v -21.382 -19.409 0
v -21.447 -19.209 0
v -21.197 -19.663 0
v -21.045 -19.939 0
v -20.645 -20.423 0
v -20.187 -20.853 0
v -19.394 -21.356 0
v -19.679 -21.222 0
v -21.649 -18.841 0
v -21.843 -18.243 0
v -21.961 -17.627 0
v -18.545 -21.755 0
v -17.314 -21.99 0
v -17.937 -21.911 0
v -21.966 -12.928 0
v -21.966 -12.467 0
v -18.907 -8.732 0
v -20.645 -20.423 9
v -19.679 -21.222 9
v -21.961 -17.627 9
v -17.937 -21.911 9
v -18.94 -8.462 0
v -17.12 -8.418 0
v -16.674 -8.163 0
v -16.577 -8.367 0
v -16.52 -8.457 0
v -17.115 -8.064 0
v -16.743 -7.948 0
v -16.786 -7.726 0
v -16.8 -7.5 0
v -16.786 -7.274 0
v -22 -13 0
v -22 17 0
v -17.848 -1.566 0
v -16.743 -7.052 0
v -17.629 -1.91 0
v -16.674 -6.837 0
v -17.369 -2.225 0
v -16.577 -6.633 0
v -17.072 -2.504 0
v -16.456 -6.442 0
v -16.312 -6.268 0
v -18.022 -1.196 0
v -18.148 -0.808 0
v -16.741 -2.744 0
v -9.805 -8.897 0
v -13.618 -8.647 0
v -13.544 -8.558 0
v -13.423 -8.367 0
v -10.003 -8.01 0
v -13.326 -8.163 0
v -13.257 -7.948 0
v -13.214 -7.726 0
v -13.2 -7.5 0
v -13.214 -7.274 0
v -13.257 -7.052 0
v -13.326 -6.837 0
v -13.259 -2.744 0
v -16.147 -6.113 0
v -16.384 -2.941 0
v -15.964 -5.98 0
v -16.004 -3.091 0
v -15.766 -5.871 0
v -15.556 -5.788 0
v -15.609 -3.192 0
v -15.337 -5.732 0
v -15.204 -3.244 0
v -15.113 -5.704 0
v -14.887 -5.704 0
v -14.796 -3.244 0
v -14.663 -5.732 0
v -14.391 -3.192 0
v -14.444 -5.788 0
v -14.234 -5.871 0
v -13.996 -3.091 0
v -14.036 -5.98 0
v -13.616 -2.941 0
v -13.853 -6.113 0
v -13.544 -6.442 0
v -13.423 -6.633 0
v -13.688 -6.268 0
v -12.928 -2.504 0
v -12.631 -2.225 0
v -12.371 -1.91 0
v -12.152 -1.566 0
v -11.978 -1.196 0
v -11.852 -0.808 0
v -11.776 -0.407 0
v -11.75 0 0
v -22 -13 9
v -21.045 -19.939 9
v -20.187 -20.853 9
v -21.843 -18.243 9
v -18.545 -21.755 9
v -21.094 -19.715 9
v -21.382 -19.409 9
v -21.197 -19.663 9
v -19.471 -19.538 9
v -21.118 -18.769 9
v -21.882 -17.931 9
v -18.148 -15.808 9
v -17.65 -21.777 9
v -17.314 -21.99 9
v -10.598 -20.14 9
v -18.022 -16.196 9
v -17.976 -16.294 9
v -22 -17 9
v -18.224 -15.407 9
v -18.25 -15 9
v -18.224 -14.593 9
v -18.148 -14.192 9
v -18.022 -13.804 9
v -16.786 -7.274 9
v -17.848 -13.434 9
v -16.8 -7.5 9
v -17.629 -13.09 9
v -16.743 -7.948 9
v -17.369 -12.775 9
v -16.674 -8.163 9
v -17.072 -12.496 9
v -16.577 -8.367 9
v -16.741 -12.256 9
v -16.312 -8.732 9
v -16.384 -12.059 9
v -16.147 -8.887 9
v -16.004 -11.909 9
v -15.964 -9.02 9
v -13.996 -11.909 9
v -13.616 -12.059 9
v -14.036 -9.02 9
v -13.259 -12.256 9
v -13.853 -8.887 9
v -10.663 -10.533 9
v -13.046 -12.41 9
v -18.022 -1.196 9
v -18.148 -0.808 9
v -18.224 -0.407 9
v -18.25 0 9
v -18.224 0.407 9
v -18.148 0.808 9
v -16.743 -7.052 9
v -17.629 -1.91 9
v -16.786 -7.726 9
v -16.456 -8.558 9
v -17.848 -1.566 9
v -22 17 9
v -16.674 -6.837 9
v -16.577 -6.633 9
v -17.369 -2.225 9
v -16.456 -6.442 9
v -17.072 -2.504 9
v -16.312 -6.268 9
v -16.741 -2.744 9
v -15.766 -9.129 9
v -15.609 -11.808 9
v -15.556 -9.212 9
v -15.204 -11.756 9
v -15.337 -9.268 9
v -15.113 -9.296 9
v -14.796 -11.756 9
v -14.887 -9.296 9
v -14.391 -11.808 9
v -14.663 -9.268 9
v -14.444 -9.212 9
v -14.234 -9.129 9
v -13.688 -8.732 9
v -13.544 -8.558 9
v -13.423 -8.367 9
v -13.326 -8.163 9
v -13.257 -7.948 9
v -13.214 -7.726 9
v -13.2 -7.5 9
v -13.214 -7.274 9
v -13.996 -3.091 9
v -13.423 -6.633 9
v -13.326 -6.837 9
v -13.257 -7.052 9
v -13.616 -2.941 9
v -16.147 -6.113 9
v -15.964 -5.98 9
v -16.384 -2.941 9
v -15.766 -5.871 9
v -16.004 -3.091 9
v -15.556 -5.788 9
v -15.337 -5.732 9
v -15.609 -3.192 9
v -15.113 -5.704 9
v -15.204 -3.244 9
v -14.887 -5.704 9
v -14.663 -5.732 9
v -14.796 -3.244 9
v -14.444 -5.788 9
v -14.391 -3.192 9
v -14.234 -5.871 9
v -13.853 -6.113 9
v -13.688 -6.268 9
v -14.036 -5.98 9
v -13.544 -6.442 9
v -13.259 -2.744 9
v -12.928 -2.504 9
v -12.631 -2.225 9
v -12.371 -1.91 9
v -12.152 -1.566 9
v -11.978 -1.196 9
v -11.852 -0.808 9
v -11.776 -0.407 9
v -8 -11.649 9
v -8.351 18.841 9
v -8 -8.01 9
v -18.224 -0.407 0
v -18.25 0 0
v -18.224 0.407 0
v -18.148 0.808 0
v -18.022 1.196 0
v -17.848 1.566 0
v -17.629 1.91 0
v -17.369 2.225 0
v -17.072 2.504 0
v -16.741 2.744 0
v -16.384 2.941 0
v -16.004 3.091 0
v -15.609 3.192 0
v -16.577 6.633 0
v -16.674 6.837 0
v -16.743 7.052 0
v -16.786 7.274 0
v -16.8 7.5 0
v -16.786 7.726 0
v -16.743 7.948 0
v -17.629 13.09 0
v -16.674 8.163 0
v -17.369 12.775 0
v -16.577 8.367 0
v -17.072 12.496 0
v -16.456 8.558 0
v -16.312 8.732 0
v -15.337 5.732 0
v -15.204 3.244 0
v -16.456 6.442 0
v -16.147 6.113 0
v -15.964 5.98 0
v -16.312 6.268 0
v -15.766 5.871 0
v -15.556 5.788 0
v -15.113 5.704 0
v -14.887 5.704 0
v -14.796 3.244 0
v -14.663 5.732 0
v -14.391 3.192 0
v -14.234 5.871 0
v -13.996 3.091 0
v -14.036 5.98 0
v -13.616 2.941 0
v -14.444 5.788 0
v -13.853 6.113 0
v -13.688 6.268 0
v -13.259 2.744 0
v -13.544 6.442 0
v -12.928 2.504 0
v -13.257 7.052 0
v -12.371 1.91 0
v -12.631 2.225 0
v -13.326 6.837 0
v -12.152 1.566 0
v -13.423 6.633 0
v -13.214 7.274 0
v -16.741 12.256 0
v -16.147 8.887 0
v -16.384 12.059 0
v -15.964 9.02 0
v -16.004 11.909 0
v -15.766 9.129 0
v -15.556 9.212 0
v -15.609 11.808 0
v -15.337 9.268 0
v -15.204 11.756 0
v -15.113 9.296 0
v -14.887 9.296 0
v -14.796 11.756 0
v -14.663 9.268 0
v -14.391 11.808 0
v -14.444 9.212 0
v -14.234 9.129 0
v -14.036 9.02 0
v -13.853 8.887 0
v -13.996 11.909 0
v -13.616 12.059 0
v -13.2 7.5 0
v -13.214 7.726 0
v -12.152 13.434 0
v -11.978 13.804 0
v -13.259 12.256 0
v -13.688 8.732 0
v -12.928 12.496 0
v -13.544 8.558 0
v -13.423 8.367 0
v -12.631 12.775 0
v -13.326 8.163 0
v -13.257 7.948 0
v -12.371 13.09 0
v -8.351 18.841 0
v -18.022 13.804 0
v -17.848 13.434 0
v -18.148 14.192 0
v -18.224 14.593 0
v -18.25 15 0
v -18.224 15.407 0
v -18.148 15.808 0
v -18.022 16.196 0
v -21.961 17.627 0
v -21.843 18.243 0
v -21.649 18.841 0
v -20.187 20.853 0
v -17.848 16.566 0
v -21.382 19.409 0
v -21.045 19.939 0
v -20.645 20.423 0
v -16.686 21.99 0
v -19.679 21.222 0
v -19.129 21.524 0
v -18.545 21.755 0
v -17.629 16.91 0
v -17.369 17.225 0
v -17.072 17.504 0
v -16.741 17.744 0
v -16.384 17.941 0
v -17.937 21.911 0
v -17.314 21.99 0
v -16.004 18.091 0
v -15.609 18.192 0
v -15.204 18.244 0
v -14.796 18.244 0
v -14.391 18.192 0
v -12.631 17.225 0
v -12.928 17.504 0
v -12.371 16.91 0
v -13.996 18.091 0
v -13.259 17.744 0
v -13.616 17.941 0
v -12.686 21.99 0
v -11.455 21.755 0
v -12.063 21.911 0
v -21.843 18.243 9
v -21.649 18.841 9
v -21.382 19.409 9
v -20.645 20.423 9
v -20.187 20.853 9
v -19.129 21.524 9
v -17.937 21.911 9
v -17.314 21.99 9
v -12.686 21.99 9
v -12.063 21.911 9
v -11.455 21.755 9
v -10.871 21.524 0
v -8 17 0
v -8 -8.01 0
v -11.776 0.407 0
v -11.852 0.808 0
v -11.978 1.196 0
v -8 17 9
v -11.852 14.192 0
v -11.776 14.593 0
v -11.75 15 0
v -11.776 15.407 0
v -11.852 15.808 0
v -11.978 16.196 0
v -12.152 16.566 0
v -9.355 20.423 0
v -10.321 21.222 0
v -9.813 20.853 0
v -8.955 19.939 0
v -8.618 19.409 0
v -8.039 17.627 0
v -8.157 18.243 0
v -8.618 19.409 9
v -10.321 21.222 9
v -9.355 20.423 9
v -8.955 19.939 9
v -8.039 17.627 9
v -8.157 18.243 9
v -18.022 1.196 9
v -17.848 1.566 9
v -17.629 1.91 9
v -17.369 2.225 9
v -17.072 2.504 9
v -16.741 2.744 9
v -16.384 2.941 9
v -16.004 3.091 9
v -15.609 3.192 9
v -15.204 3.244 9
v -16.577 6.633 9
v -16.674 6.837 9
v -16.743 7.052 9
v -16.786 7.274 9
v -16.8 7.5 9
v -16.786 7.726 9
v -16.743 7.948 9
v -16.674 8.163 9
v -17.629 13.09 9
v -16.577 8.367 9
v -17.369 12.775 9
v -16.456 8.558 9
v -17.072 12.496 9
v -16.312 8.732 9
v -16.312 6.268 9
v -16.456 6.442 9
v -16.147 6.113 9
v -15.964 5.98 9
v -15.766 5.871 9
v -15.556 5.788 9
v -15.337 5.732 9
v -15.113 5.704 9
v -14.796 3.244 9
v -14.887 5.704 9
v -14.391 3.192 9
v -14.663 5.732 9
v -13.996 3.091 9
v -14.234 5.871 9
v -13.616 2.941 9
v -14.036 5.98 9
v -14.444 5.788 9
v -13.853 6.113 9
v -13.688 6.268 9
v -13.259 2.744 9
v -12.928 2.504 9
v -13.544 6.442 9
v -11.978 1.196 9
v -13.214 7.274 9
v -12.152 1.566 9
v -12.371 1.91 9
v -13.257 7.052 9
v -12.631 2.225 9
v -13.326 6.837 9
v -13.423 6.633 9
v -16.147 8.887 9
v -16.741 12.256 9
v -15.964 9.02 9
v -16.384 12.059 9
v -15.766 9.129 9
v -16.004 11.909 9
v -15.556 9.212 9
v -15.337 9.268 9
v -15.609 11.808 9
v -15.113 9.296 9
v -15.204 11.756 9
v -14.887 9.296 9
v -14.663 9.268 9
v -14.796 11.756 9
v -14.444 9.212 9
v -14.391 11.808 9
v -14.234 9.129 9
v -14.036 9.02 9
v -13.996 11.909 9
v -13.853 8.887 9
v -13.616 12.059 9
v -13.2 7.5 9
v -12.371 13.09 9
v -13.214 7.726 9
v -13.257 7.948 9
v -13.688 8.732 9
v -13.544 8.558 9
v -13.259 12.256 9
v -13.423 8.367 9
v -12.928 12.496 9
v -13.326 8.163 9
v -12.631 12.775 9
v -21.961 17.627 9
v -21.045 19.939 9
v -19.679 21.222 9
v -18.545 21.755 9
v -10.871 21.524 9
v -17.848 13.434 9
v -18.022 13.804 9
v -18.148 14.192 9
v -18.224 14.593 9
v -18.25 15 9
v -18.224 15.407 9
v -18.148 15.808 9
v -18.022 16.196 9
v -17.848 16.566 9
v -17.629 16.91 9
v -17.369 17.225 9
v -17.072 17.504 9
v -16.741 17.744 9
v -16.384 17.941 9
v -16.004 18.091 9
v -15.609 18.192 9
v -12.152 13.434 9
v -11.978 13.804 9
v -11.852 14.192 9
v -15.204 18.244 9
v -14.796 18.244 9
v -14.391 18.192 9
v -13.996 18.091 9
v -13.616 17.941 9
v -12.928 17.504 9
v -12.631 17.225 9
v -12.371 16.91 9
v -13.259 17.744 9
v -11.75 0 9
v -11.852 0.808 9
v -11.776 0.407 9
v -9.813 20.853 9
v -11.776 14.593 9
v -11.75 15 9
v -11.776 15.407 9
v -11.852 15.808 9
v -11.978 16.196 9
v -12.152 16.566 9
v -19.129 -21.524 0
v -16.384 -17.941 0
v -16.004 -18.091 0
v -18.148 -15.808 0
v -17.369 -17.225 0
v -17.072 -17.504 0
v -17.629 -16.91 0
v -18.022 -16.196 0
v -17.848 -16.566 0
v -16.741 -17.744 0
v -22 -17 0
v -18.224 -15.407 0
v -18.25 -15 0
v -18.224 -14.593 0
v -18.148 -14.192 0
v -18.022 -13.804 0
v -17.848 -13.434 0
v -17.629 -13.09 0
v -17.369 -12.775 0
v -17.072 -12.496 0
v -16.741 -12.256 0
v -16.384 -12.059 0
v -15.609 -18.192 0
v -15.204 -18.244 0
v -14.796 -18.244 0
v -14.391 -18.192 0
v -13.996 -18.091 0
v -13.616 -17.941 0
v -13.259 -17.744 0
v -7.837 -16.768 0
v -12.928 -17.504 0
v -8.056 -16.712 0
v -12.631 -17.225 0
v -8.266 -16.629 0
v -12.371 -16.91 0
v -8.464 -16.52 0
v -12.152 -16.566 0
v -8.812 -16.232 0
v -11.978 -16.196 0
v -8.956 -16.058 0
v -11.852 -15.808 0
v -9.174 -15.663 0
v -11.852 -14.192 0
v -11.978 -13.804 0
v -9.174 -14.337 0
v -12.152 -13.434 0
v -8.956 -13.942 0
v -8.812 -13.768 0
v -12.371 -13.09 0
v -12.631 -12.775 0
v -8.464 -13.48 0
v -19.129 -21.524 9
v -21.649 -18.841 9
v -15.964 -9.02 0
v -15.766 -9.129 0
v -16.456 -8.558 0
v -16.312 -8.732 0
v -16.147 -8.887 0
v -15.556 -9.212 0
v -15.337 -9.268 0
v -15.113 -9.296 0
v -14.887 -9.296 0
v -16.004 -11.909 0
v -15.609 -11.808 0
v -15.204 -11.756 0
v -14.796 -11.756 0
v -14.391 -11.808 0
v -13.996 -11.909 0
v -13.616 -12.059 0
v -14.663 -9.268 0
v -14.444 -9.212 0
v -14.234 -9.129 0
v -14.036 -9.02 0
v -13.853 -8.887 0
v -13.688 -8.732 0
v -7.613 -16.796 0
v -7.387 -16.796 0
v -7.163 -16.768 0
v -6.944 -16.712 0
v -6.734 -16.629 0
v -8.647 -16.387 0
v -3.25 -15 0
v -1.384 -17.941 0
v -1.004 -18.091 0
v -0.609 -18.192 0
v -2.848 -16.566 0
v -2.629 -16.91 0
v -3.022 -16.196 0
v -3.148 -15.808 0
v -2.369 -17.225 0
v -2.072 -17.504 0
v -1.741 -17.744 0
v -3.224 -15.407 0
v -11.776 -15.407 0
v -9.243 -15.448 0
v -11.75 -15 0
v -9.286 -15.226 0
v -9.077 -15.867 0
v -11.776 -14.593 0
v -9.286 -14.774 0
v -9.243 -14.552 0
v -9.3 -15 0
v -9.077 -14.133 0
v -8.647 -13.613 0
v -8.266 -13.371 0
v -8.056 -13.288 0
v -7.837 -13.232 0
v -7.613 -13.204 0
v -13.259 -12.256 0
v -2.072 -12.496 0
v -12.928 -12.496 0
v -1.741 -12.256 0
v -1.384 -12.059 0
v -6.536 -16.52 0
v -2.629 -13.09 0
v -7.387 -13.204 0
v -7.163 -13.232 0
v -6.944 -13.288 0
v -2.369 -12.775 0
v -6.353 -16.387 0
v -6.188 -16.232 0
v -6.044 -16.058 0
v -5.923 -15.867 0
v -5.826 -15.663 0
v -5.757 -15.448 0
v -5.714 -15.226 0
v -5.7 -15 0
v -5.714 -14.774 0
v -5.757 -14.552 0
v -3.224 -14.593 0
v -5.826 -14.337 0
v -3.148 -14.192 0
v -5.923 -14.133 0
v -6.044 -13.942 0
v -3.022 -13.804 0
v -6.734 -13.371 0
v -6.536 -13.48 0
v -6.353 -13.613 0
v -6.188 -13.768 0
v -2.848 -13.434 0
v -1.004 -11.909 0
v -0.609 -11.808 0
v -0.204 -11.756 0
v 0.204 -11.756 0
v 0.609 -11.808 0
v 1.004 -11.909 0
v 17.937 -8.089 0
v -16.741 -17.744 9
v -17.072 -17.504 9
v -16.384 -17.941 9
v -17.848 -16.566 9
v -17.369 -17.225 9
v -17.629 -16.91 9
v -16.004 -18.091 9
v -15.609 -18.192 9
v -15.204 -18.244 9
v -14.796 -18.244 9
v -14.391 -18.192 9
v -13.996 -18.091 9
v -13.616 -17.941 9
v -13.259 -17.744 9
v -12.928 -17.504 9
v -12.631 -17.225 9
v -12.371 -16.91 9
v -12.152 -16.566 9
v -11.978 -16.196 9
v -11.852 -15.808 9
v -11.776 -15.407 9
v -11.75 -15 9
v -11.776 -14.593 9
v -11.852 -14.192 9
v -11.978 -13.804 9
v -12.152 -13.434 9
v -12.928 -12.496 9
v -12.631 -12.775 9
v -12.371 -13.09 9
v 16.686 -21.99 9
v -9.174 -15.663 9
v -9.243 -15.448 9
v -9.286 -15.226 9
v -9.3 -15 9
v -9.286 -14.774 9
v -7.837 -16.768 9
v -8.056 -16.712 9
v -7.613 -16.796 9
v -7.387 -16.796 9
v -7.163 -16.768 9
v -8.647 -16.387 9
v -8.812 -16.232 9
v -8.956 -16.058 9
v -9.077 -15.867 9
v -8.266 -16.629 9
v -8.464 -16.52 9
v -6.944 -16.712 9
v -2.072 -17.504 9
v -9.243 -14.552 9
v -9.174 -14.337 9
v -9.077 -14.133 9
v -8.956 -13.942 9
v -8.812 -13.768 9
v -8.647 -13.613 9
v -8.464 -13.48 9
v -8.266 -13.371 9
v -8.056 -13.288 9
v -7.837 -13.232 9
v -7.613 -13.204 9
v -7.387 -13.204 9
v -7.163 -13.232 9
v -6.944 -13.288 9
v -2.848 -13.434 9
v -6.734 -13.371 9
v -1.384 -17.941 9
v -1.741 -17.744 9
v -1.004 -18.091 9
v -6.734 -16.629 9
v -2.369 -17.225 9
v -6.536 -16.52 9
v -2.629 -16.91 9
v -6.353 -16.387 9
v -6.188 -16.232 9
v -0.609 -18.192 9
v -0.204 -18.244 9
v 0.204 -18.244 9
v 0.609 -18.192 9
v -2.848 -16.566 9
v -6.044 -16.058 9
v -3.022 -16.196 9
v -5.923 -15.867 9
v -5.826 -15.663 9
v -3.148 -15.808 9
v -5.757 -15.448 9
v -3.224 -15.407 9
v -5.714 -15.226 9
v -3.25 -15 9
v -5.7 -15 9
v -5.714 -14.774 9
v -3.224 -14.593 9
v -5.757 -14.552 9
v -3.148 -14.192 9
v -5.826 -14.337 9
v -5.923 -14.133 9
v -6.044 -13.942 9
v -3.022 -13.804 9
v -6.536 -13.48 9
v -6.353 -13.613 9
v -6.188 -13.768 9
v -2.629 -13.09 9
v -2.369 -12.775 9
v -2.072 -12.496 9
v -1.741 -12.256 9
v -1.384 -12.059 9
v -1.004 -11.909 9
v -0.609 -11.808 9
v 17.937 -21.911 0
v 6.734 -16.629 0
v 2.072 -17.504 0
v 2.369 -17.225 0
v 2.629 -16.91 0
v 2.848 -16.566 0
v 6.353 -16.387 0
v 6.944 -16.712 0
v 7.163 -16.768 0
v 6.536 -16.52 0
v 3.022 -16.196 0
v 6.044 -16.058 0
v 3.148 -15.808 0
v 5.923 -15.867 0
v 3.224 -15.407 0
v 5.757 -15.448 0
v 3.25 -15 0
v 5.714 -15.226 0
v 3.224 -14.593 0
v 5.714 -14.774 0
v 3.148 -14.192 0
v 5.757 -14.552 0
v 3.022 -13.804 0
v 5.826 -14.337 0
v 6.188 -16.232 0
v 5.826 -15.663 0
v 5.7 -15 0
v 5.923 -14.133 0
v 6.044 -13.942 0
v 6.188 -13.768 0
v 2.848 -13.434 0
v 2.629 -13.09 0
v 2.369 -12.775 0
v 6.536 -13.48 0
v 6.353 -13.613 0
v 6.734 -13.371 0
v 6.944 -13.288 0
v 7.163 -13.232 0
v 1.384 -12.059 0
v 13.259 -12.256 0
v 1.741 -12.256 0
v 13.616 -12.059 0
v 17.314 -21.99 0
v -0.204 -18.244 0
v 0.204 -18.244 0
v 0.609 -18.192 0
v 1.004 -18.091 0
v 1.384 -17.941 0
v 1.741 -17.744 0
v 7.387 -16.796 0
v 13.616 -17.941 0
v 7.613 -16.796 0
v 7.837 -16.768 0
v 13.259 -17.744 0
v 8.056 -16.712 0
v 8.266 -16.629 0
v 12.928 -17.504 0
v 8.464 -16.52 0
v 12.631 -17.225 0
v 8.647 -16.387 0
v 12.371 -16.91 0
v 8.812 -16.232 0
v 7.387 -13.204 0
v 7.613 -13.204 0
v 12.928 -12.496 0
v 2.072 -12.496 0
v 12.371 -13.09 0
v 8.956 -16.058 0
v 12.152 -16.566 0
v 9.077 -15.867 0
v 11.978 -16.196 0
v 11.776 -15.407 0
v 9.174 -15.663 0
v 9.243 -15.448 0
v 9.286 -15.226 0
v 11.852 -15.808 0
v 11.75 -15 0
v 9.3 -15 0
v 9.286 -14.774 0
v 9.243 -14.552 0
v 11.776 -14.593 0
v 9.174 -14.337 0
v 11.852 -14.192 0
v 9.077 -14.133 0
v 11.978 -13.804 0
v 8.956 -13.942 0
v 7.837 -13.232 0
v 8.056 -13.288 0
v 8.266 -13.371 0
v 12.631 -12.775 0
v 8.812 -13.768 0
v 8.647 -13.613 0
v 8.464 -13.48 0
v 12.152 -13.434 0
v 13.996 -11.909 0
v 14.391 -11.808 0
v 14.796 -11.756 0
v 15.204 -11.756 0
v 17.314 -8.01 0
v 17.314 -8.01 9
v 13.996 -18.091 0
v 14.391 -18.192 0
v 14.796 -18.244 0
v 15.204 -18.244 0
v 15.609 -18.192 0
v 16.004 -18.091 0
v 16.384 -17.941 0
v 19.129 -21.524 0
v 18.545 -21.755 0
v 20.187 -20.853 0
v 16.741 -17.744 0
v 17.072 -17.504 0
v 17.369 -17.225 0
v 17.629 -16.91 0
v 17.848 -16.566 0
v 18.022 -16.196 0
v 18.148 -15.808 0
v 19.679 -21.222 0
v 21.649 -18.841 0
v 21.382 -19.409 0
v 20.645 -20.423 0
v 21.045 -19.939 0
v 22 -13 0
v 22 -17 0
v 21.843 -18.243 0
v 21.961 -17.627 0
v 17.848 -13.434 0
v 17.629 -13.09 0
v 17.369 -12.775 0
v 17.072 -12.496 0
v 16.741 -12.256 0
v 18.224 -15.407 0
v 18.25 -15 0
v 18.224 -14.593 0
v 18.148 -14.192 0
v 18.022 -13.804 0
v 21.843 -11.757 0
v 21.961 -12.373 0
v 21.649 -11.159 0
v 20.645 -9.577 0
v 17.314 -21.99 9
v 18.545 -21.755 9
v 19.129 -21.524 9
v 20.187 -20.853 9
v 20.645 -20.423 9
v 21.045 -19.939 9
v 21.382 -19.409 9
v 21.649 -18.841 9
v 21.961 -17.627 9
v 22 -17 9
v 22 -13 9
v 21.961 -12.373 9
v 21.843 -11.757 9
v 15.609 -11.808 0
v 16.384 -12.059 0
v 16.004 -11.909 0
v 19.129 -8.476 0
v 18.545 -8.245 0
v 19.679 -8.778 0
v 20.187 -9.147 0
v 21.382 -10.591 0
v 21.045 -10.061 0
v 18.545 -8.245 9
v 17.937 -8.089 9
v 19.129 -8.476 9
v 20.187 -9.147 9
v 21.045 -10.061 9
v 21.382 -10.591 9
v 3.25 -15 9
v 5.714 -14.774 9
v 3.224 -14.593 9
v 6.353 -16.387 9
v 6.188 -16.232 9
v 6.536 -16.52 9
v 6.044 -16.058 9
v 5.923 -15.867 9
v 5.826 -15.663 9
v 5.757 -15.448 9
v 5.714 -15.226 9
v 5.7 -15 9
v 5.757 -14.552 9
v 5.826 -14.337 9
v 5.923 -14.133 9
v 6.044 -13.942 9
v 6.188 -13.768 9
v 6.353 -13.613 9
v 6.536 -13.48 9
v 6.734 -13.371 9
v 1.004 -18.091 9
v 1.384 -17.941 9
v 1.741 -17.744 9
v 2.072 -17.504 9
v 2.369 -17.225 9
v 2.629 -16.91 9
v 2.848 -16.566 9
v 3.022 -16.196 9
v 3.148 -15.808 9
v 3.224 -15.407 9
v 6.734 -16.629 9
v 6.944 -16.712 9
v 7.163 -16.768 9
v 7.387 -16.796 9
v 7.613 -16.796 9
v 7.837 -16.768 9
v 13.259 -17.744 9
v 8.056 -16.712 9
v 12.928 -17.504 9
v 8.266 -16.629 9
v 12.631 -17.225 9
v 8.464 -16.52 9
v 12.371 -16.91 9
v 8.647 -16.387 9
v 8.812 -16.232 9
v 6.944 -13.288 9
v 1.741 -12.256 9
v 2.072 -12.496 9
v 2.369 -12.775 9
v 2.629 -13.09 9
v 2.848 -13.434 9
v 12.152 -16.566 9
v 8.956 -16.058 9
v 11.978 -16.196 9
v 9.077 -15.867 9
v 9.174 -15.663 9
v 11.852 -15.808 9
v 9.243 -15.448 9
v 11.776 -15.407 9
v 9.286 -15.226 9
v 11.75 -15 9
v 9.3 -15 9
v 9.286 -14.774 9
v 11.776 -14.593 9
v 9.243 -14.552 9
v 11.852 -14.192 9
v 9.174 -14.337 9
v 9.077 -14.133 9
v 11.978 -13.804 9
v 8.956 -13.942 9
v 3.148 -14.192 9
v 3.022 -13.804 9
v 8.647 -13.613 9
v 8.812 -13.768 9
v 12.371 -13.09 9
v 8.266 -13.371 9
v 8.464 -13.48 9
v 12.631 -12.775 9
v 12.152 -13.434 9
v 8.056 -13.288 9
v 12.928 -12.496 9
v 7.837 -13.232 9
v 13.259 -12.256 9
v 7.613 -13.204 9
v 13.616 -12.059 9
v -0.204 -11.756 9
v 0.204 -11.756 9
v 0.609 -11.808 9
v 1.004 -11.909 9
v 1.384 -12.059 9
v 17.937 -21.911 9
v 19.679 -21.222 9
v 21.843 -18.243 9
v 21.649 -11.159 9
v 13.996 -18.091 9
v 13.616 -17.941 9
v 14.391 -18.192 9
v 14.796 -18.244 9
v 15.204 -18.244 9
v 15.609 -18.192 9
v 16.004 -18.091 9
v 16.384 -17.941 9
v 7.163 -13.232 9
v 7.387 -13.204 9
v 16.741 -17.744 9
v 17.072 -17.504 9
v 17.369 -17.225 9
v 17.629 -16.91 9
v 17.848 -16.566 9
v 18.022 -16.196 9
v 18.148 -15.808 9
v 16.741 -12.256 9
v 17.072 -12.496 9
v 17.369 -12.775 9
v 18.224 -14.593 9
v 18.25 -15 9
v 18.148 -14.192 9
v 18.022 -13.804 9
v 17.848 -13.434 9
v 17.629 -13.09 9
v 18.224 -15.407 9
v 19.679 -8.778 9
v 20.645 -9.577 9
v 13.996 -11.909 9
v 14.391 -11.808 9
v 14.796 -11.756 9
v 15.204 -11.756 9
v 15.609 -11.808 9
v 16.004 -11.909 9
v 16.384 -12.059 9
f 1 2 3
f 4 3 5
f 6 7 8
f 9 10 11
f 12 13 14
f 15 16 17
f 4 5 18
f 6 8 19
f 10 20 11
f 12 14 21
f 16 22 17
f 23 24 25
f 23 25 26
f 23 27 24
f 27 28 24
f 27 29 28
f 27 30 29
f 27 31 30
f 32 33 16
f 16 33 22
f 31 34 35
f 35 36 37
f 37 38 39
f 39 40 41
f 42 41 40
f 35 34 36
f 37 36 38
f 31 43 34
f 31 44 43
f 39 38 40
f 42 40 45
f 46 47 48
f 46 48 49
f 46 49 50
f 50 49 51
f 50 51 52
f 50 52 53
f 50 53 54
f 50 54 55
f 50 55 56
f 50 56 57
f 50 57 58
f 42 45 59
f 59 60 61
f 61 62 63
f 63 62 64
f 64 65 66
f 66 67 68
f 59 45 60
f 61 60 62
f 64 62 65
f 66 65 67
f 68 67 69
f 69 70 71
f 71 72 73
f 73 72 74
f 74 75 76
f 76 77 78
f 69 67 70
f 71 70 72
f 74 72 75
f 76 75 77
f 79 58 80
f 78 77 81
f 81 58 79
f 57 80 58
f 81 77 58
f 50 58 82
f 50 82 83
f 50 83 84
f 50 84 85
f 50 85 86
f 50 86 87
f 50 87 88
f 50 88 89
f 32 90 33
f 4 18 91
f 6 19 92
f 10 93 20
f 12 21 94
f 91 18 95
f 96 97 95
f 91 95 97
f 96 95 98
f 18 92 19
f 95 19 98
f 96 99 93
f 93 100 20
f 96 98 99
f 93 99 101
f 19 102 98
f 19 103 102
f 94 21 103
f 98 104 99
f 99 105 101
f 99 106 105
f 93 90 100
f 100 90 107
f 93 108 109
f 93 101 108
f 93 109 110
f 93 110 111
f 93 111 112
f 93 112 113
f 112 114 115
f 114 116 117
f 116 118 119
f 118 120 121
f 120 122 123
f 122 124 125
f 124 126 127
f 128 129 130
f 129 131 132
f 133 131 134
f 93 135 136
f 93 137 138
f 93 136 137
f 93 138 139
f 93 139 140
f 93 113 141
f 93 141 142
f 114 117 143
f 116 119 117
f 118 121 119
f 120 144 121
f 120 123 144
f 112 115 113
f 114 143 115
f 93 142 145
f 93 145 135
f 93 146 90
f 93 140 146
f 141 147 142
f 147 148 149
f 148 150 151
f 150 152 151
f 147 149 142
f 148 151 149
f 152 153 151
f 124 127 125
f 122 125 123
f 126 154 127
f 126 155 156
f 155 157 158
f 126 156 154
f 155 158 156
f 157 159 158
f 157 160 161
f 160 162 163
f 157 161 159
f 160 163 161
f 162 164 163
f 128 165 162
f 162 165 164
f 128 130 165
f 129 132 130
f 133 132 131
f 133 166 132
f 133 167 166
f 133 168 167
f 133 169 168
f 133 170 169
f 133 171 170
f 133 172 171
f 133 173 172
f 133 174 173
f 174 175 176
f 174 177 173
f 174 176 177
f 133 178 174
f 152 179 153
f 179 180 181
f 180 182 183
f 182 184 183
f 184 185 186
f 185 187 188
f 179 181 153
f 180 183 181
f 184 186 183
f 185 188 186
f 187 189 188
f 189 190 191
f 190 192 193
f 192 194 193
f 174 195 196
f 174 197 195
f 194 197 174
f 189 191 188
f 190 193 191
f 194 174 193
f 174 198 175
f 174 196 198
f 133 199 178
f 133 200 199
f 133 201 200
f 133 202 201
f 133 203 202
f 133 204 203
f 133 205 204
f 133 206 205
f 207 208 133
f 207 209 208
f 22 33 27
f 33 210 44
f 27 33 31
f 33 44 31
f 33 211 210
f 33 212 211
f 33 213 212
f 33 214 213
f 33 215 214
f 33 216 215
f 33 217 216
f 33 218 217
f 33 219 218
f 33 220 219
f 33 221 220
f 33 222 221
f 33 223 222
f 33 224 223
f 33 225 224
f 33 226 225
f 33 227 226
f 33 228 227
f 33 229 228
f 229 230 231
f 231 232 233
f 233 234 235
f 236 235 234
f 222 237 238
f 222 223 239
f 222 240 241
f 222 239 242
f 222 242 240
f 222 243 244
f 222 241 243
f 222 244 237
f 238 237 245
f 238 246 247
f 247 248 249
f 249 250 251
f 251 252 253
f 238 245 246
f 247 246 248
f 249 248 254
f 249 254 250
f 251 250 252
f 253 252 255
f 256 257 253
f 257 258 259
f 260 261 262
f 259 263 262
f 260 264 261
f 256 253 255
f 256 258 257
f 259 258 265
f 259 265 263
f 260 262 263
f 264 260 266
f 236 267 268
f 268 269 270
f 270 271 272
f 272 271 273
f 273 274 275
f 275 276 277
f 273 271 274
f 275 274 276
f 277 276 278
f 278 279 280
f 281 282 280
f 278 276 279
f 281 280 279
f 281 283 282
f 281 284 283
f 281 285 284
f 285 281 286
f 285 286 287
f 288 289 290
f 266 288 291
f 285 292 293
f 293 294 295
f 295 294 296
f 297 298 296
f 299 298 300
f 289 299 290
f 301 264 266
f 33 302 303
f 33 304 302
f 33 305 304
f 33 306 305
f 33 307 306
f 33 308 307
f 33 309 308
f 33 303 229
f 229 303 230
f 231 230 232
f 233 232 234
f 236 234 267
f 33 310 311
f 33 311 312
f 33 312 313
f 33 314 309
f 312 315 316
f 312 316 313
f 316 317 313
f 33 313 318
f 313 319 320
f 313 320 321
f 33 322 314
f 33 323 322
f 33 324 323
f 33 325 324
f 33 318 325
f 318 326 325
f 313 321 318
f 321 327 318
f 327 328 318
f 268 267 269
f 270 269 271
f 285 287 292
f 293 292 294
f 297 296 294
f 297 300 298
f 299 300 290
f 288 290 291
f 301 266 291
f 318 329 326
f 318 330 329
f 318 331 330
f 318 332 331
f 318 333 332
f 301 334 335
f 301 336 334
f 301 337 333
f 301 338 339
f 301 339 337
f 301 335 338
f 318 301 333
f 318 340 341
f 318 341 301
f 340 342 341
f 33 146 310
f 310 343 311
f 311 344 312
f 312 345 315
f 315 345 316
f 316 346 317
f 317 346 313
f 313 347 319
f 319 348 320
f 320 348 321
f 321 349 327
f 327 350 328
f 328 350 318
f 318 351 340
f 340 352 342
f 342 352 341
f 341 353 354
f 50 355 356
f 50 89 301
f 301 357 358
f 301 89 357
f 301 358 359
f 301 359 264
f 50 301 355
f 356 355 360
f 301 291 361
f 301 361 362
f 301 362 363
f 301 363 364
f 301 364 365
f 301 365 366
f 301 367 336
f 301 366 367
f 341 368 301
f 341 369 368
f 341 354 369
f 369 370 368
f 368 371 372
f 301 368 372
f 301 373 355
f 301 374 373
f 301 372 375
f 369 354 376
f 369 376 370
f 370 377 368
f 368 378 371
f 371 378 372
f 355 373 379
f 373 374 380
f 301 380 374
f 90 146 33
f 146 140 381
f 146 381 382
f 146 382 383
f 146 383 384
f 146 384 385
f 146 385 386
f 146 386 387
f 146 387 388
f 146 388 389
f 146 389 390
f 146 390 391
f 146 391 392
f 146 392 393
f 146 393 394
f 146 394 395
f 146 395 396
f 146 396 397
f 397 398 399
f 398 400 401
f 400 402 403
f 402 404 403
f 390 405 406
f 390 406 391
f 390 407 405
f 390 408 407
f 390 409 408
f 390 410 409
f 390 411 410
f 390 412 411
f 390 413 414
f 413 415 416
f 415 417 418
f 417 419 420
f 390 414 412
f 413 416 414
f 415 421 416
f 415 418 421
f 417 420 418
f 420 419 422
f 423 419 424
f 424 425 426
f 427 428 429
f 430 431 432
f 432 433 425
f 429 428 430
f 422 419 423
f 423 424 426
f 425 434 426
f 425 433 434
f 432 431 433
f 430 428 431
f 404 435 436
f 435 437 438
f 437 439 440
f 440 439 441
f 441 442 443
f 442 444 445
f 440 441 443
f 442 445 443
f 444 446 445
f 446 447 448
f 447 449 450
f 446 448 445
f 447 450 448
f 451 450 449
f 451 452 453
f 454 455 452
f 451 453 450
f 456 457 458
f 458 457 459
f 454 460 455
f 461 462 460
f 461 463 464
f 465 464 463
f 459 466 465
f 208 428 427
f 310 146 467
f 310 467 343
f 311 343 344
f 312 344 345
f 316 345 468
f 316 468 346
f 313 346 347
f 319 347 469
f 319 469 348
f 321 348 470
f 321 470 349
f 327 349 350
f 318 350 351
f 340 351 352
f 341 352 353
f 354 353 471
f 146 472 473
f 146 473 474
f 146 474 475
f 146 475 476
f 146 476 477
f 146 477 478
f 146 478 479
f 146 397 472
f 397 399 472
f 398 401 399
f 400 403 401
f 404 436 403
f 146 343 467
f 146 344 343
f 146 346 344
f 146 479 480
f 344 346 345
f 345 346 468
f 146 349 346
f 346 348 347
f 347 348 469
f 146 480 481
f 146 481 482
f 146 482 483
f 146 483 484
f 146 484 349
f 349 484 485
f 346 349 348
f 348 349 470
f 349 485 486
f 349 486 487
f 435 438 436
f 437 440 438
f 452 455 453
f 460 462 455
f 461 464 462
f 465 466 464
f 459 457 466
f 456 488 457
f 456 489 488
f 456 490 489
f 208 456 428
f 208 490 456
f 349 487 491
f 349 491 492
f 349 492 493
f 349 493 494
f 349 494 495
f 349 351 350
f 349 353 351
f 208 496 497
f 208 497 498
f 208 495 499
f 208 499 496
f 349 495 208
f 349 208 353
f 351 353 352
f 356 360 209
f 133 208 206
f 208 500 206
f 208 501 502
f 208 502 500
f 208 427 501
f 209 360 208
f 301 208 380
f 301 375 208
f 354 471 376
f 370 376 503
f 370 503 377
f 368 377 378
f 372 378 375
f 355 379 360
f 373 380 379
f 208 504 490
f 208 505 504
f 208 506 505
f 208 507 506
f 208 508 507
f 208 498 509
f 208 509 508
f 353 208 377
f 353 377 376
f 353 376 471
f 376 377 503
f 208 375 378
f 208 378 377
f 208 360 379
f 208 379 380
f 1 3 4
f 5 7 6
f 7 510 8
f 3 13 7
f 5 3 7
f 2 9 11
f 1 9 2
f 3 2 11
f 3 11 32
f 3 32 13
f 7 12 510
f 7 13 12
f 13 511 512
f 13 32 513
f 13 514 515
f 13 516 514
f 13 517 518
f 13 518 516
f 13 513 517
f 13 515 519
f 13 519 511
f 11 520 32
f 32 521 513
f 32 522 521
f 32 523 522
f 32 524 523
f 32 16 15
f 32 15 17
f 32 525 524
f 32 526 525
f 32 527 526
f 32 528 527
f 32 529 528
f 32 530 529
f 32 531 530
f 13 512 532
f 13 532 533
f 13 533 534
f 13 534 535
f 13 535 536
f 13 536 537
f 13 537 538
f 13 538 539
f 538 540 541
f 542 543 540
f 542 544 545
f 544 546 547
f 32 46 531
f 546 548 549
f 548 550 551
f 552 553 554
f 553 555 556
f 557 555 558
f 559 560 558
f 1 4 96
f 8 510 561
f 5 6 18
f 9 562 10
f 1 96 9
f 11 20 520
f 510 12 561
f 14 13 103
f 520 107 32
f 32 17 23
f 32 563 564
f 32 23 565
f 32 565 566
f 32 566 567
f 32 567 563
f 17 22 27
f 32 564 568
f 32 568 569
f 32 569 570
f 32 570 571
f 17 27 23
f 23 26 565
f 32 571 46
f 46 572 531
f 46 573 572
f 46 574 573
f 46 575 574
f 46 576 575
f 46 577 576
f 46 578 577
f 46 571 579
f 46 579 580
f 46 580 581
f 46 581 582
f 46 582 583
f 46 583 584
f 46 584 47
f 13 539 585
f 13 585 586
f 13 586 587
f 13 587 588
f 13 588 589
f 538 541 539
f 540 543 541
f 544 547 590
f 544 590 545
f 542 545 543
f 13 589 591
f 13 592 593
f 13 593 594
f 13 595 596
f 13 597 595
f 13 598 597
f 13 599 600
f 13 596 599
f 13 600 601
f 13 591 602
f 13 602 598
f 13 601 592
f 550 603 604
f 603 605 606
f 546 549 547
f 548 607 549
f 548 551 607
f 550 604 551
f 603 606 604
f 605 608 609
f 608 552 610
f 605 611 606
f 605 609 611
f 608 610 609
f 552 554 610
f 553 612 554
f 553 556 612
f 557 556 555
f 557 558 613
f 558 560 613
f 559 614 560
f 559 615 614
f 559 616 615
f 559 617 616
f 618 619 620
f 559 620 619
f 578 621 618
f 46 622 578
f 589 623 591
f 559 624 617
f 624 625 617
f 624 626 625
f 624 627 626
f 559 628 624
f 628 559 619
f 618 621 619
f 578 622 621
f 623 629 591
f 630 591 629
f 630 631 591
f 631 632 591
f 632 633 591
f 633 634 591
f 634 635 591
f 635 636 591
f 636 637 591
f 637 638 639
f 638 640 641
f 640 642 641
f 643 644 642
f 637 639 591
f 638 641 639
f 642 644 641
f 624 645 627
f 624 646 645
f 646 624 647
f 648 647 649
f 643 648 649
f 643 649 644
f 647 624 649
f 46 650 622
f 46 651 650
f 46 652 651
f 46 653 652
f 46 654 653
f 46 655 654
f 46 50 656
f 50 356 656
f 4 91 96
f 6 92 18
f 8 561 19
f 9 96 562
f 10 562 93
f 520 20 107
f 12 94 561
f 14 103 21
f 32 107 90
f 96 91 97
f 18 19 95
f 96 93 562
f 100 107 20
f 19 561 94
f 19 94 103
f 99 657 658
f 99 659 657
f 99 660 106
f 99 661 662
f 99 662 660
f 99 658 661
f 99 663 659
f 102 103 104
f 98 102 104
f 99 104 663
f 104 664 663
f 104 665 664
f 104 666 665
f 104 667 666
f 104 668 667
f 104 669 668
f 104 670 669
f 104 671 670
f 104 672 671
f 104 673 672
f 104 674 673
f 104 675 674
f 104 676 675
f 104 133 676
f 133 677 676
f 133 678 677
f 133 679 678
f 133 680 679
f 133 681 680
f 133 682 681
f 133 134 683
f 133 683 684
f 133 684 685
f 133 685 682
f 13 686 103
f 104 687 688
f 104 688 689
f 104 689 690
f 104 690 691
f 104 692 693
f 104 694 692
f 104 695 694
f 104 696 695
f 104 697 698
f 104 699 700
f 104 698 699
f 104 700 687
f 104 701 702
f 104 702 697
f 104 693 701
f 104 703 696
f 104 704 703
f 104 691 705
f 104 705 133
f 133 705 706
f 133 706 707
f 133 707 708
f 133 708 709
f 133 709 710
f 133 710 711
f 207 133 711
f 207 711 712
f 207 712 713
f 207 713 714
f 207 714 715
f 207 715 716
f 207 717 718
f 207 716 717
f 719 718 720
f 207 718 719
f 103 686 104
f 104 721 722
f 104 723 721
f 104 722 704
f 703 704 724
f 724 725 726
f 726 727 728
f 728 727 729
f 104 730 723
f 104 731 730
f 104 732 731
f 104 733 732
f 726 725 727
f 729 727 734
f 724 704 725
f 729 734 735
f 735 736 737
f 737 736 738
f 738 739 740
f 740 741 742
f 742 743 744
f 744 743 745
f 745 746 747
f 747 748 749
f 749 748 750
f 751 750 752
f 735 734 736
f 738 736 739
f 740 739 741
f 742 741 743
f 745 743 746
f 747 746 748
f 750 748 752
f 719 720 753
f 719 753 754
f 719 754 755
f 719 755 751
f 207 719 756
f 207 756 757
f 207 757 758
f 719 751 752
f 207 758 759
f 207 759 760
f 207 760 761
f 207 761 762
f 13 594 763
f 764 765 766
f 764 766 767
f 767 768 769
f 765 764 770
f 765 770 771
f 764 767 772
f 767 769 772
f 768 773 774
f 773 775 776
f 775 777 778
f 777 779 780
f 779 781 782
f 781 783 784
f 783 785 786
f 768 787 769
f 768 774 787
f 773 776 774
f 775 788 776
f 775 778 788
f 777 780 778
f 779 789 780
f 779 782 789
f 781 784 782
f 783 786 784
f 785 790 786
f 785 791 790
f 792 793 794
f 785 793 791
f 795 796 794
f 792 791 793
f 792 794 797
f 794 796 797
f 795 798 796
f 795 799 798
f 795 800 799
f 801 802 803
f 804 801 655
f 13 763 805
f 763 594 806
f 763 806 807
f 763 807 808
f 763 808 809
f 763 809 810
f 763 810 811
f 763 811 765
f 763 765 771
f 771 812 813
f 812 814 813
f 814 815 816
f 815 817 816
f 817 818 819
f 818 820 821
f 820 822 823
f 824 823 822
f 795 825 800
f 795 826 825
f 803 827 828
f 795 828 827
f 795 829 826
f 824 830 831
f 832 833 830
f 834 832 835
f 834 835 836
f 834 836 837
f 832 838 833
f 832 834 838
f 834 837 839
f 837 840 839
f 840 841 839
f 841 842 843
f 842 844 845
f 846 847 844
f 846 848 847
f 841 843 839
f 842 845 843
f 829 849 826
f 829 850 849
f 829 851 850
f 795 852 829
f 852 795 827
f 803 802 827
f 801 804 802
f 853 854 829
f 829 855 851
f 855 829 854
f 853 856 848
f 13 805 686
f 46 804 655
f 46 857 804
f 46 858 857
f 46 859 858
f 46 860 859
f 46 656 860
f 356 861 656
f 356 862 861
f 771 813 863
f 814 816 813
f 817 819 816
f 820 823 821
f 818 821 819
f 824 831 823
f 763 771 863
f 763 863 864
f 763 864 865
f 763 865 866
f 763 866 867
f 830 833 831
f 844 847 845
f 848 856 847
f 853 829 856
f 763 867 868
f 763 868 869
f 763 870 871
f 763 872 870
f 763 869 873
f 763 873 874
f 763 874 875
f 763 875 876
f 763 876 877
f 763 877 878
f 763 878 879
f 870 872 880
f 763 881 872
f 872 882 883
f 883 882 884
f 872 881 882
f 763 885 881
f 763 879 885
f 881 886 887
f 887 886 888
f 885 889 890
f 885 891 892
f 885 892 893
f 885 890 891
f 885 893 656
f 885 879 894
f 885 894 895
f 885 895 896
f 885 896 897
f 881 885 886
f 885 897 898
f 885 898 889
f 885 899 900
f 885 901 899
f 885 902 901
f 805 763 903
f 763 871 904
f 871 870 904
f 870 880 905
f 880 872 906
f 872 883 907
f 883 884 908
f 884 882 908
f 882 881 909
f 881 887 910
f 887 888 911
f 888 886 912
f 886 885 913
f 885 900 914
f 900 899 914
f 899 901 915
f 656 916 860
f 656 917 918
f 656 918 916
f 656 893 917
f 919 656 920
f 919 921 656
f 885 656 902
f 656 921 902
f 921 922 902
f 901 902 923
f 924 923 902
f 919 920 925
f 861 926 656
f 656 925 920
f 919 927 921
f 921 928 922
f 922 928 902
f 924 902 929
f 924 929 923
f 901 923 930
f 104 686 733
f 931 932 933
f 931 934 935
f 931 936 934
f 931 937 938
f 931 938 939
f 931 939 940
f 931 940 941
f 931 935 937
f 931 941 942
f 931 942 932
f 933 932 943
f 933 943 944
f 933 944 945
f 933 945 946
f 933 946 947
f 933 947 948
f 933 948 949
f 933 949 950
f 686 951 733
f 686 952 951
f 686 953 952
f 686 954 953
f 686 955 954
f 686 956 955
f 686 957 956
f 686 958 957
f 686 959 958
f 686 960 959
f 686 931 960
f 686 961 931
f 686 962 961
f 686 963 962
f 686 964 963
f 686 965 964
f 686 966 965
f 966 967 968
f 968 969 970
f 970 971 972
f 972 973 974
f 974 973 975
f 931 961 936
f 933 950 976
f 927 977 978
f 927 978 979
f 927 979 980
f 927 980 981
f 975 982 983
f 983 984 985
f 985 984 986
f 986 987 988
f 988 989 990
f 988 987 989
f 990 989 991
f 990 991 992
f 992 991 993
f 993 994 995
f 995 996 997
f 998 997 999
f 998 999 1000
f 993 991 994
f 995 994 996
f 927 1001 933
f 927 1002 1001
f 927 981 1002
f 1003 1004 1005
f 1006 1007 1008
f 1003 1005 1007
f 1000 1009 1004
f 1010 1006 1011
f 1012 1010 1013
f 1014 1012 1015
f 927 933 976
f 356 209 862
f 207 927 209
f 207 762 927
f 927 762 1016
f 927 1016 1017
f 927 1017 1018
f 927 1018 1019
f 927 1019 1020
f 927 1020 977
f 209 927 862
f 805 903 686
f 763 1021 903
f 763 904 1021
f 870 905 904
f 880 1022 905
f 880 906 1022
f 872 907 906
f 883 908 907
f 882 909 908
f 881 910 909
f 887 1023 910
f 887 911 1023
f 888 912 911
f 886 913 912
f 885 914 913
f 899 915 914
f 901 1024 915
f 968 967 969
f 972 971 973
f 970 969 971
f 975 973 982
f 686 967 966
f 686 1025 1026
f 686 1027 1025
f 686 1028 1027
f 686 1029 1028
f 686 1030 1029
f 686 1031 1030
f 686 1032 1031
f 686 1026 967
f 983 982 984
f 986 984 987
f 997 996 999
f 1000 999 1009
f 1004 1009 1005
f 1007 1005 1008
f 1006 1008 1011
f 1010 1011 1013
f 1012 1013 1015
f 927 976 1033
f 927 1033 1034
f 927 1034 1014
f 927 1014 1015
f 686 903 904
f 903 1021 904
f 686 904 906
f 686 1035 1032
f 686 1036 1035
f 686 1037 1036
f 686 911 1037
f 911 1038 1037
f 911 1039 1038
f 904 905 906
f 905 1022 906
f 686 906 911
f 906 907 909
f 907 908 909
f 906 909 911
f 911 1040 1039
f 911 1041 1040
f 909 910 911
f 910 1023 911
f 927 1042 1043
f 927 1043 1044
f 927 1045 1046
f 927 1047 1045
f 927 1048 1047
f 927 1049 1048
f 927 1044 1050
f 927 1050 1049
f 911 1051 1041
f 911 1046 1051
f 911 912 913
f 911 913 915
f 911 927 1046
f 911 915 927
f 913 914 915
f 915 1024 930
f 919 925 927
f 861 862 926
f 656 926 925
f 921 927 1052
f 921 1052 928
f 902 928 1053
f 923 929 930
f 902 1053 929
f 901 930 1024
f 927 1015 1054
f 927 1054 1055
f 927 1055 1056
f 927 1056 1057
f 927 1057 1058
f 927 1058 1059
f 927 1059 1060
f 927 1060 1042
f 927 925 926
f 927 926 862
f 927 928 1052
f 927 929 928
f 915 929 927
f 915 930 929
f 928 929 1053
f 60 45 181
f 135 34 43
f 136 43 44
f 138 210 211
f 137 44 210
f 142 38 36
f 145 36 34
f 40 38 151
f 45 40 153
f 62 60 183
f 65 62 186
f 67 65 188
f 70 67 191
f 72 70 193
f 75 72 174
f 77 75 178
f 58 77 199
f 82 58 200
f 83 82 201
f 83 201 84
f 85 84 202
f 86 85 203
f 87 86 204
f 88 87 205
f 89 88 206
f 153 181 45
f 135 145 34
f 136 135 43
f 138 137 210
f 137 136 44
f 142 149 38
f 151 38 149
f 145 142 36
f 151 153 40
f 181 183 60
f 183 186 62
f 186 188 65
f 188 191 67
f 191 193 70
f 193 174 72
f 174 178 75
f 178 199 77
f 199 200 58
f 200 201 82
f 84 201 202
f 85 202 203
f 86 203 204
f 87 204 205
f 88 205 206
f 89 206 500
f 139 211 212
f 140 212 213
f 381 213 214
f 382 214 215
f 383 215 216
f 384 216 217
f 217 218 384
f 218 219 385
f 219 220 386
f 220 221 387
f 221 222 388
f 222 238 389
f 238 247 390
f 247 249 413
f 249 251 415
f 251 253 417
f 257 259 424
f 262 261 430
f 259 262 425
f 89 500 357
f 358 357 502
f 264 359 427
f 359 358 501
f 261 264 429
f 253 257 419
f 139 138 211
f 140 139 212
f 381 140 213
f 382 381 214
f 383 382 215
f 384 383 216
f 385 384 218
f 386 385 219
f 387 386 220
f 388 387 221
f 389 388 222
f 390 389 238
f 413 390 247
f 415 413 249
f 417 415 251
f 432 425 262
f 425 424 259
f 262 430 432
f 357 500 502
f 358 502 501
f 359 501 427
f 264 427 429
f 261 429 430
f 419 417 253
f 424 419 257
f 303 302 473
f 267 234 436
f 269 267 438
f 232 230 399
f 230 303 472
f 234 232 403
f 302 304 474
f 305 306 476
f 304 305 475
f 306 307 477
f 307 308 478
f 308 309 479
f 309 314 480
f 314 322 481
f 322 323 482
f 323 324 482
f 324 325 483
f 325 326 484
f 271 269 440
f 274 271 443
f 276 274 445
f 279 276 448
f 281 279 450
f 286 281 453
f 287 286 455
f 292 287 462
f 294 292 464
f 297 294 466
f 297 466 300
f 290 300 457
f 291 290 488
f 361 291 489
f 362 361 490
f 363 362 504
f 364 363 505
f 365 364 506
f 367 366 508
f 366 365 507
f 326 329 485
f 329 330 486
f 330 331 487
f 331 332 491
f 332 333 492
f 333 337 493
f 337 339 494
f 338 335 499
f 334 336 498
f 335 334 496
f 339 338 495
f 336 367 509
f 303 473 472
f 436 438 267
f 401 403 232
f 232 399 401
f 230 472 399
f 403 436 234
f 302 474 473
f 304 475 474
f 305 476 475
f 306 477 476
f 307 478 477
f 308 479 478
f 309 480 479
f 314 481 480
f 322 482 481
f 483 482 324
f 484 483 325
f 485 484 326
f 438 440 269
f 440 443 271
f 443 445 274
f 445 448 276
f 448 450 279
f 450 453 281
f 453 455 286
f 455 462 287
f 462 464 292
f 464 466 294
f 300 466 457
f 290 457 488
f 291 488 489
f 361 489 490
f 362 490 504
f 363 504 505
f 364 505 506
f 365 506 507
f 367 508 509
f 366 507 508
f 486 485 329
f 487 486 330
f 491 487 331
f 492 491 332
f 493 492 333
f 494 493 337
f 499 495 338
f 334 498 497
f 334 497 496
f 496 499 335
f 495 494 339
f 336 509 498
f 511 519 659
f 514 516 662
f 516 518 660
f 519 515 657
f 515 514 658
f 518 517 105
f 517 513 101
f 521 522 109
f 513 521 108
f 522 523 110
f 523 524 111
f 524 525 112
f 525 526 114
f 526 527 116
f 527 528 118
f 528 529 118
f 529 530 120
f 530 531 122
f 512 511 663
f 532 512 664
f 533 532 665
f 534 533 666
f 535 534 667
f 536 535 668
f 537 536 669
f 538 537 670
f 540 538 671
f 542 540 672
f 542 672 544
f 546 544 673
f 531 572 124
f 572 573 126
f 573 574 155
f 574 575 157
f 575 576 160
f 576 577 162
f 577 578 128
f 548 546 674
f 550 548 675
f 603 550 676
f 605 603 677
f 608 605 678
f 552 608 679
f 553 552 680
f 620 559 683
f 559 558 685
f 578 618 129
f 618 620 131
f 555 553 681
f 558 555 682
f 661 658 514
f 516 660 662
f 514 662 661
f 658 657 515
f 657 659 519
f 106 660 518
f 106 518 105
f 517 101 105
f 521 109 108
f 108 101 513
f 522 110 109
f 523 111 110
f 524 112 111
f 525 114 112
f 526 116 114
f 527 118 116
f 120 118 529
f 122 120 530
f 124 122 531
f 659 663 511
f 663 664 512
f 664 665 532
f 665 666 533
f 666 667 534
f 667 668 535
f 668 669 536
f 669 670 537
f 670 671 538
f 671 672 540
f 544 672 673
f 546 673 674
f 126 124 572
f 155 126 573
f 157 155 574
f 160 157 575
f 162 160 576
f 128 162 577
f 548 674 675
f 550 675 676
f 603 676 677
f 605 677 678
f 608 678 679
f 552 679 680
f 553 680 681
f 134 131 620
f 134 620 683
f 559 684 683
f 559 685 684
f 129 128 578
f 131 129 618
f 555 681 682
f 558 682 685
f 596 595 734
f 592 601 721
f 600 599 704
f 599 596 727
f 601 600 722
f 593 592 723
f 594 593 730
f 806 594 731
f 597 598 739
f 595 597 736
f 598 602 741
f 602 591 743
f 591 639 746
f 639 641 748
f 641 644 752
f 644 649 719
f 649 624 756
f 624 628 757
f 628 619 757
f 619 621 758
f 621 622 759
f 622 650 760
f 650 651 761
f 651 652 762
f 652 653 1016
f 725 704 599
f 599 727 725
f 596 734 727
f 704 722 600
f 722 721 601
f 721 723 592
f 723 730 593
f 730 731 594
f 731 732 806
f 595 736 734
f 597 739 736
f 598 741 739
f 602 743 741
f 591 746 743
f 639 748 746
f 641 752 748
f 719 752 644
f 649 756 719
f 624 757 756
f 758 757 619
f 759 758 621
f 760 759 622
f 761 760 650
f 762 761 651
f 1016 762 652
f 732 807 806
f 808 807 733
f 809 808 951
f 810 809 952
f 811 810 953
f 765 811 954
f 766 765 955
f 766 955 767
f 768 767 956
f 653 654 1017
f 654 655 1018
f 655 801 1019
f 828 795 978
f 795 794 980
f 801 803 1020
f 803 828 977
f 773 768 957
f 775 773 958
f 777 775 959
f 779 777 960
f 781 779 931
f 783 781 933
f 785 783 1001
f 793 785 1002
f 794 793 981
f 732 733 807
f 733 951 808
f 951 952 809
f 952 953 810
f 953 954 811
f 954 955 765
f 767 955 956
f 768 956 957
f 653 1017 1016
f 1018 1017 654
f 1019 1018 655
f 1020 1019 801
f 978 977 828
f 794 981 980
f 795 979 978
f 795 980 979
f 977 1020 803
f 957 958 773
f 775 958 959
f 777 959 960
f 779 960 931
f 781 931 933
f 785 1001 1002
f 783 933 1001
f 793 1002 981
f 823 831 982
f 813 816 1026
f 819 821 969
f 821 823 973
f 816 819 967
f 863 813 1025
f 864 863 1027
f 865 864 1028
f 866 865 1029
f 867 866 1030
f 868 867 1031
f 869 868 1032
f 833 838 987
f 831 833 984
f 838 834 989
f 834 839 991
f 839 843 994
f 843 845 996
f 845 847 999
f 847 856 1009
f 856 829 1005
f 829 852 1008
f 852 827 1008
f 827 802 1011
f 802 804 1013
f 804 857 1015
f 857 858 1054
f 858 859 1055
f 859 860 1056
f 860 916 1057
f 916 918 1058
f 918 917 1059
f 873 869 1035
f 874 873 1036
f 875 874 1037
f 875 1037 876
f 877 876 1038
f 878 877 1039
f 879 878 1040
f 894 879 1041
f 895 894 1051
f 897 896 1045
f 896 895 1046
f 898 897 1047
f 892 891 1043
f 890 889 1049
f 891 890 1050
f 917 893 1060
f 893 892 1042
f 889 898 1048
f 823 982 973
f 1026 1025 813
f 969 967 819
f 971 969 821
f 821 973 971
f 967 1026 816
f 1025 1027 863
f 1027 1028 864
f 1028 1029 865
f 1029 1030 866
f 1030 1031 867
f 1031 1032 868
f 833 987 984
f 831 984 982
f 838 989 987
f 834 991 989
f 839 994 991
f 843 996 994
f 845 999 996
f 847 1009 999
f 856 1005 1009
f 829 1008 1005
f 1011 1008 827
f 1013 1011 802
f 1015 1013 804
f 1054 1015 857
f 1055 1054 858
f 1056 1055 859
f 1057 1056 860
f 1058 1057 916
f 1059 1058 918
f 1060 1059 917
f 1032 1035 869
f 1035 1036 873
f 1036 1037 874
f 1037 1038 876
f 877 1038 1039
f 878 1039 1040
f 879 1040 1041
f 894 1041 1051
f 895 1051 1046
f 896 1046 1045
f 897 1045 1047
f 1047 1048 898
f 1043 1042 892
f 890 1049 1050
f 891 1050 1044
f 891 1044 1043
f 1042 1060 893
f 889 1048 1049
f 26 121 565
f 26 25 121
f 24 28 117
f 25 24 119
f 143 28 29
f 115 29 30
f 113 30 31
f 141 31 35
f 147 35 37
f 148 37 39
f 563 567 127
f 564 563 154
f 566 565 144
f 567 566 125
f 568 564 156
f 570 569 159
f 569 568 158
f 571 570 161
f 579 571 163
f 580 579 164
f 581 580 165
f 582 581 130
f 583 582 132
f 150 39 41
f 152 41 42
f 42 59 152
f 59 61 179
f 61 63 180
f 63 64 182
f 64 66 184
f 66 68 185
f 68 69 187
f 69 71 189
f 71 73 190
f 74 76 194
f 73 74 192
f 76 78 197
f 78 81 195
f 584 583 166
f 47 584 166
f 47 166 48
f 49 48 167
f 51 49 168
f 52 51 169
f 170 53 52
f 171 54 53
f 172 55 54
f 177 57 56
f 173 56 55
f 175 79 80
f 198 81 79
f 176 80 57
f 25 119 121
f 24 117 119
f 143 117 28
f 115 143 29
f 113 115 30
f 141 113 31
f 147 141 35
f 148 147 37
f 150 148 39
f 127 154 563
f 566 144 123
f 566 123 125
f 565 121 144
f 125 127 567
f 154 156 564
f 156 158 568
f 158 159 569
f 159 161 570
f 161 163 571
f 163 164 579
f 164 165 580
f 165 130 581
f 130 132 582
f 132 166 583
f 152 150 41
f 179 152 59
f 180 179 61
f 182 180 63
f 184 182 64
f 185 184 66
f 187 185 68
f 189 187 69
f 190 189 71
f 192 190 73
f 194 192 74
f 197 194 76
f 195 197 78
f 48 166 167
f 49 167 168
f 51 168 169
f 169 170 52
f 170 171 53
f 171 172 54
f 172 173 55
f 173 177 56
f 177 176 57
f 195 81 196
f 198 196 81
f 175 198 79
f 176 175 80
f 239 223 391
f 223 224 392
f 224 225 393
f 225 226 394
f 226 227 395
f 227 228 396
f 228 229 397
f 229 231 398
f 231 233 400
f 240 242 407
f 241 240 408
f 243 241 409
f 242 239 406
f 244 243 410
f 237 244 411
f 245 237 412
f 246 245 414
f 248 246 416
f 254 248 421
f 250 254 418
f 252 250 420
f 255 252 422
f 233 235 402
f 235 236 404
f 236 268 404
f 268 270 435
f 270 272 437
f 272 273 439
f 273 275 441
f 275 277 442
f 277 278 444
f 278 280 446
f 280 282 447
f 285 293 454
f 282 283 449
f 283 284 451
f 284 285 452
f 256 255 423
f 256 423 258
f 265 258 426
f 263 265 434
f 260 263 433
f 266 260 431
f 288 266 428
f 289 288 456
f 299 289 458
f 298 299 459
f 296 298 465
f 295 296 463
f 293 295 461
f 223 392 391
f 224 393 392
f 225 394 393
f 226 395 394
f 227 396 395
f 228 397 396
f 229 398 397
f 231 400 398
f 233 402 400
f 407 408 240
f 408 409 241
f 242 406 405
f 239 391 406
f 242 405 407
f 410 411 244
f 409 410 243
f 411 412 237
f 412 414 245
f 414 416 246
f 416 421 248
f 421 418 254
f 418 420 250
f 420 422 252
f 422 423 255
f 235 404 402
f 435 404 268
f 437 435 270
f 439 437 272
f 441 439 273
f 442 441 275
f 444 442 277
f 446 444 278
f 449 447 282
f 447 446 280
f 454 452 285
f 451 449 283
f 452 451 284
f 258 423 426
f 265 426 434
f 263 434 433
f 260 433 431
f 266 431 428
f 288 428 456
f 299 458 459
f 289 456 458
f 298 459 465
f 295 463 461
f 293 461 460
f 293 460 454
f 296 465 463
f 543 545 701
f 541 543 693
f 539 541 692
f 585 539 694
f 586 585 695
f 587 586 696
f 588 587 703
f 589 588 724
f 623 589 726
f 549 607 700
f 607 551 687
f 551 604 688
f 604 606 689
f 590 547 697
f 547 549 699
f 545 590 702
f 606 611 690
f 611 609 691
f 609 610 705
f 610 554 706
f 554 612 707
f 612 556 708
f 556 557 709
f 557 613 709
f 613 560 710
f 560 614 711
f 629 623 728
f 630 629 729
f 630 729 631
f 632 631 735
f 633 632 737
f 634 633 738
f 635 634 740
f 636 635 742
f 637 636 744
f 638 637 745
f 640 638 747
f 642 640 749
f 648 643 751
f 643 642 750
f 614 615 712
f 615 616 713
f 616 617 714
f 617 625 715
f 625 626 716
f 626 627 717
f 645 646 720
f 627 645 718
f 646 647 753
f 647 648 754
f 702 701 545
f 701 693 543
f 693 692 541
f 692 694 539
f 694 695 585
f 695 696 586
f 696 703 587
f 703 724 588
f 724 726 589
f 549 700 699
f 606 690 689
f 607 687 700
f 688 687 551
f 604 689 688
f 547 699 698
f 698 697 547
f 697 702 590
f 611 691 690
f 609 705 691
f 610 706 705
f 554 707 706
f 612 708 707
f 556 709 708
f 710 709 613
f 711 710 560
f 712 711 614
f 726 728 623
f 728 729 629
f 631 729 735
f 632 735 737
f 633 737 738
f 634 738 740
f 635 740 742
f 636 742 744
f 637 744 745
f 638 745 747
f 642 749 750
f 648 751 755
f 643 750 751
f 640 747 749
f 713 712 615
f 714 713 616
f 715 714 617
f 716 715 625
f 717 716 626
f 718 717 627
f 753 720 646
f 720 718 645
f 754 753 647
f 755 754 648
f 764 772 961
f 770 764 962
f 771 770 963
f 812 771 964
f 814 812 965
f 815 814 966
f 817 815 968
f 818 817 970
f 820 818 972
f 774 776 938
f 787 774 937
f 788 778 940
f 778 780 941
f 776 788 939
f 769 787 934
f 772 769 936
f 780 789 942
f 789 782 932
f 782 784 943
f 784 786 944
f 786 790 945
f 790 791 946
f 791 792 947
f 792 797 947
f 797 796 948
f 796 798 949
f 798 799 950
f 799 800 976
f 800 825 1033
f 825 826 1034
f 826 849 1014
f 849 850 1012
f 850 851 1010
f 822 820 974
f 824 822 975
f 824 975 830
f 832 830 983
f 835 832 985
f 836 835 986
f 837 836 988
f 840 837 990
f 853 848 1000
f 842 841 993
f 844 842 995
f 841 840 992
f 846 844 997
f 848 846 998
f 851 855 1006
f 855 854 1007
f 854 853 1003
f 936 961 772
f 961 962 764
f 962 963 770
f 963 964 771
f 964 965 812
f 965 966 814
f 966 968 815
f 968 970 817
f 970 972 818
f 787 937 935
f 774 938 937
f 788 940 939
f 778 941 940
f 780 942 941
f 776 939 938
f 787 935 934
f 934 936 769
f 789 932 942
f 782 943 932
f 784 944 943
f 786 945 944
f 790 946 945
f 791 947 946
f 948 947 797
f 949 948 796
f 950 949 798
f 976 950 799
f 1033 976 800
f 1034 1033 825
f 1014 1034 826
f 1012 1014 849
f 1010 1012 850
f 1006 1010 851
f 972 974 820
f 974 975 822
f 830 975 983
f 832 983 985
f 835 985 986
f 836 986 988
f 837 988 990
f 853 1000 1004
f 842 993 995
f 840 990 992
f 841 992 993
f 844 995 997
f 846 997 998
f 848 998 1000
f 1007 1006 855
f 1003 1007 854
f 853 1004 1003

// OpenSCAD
$fn = 50;

difference() {
	union() {
		translate(v = [-15.0, 0, 0]) {
			hull() {
				translate(v = [-2.0, 17.0, 0]) {
					cylinder(h = 9, r = 5);
				}
				translate(v = [2.0, 17.0, 0]) {
					cylinder(h = 9, r = 5);
				}
				translate(v = [-2.0, -17.0, 0]) {
					cylinder(h = 9, r = 5);
				}
				translate(v = [2.0, -17.0, 0]) {
					cylinder(h = 9, r = 5);
				}
			}
		}
		translate(v = [0, -15.0, 0]) {
			hull() {
				translate(v = [-17.0, 2.0, 0]) {
					cylinder(h = 9, r = 5);
				}
				translate(v = [17.0, 2.0, 0]) {
					cylinder(h = 9, r = 5);
				}
				translate(v = [-17.0, -2.0, 0]) {
					cylinder(h = 9, r = 5);
				}
				translate(v = [17.0, -2.0, 0]) {
					cylinder(h = 9, r = 5);
				}
			}
		}
	}
	union() {
		#translate(v = [-15.0, -15.0, 0]) {
			cylinder(h = 9, r = 3.25);
		}
		#translate(v = [-15.0, 0.0, 0]) {
			cylinder(h = 9, r = 3.25);
		}
		#translate(v = [-15.0, 15.0, 0]) {
			cylinder(h = 9, r = 3.25);
		}
		#translate(v = [-15.0, -15.0, 0]) {
			cylinder(h = 9, r = 3.25);
		}
		#translate(v = [0.0, -15.0, 0]) {
			cylinder(h = 9, r = 3.25);
		}
		#translate(v = [15.0, -15.0, 0]) {
			cylinder(h = 9, r = 3.25);
		}
		#translate(v = [-15.0, -15.0, 0]) {
			cylinder(h = 9, r = 1.8);
		}
		#translate(v = [-15.0, -7.5, 0]) {
			cylinder(h = 9, r = 1.8);
		}
		#translate(v = [-15.0, 0.0, 0]) {
			cylinder(h = 9, r = 1.8);
		}
		#translate(v = [-15.0, 7.5, 0]) {
			cylinder(h = 9, r = 1.8);
		}
		#translate(v = [-15.0, 15.0, 0]) {
			cylinder(h = 9, r = 1.8);
		}
		#translate(v = [-15.0, -15.0, 0]) {
			cylinder(h = 9, r = 1.8);
		}
		#translate(v = [-7.5, -15.0, 0]) {
			cylinder(h = 9, r = 1.8);
		}
		#translate(v = [0.0, -15.0, 0]) {
			cylinder(h = 9, r = 1.8);
		}
		#translate(v = [7.5, -15.0, 0]) {
			cylinder(h = 9, r = 1.8);
		}
		#translate(v = [15.0, -15.0, 0]) {
			cylinder(h = 9, r = 1.8);
		}
	}
}
